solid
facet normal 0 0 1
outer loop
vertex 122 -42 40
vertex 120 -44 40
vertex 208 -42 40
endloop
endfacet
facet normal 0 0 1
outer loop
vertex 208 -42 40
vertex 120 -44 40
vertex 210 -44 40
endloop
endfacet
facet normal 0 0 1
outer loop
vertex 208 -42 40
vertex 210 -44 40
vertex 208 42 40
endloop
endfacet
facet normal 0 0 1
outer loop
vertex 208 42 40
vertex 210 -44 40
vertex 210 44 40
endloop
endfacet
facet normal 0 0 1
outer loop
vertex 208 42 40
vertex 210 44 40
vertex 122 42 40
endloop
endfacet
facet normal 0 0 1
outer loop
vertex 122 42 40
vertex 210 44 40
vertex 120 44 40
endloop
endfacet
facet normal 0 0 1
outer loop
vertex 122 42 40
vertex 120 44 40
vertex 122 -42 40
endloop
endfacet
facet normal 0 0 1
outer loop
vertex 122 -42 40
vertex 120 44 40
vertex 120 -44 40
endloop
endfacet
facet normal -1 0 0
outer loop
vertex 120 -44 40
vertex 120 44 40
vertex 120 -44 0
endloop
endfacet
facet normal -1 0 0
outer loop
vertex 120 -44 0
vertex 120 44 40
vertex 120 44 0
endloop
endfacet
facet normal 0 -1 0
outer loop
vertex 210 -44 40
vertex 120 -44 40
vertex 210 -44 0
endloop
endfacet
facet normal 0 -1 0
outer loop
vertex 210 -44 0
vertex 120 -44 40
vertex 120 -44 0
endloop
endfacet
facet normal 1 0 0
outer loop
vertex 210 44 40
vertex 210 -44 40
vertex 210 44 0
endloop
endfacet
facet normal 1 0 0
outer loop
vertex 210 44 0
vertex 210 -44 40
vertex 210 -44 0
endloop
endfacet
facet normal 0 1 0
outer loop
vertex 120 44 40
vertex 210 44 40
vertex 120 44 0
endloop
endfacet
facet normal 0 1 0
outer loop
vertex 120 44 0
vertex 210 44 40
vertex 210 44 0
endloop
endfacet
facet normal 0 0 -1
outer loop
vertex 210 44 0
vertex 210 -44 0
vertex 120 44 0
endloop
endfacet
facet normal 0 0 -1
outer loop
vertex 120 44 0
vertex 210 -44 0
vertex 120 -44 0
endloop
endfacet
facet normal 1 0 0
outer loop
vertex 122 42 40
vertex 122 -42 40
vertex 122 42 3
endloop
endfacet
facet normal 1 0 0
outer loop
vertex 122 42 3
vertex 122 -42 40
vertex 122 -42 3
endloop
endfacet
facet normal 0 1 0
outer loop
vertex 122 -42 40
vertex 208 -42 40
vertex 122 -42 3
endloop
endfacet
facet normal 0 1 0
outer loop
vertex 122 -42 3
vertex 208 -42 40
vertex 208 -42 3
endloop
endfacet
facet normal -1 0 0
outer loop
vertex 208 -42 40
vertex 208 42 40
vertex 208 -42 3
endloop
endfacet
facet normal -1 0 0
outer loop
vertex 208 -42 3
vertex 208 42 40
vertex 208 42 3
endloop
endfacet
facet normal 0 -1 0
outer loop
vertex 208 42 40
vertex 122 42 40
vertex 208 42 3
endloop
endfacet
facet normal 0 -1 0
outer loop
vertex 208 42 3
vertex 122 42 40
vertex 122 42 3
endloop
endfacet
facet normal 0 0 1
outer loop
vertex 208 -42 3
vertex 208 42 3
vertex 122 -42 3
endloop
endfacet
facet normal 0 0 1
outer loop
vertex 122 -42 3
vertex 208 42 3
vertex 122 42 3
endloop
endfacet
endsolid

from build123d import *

# Parameters (mm, degrees)
SKETCH_1_W       = 90
SKETCH_1_H       = 88
TRAY_DEPTH       = 40
TRAYCAVITY_START = 3
SKETCH_2_W       = 86
SKETCH_2_H       = 84
TRAYCAVITY_DEPTH = 37


with BuildPart() as part:
    # 草图1 → Tray (new body)
    with BuildSketch(Plane.XY):
        with Locations((165, 0)):
            Rectangle(SKETCH_1_W, SKETCH_1_H)
    extrude(amount=TRAY_DEPTH)

    # 草图2 → TrayCavity (cut)
    with BuildSketch(Plane.XY.offset(TRAYCAVITY_START)):
        with Locations((165, 0)):
            Rectangle(SKETCH_2_W, SKETCH_2_H)
    extrude(amount=TRAYCAVITY_DEPTH, mode=Mode.SUBTRACT)


solid = part.part
